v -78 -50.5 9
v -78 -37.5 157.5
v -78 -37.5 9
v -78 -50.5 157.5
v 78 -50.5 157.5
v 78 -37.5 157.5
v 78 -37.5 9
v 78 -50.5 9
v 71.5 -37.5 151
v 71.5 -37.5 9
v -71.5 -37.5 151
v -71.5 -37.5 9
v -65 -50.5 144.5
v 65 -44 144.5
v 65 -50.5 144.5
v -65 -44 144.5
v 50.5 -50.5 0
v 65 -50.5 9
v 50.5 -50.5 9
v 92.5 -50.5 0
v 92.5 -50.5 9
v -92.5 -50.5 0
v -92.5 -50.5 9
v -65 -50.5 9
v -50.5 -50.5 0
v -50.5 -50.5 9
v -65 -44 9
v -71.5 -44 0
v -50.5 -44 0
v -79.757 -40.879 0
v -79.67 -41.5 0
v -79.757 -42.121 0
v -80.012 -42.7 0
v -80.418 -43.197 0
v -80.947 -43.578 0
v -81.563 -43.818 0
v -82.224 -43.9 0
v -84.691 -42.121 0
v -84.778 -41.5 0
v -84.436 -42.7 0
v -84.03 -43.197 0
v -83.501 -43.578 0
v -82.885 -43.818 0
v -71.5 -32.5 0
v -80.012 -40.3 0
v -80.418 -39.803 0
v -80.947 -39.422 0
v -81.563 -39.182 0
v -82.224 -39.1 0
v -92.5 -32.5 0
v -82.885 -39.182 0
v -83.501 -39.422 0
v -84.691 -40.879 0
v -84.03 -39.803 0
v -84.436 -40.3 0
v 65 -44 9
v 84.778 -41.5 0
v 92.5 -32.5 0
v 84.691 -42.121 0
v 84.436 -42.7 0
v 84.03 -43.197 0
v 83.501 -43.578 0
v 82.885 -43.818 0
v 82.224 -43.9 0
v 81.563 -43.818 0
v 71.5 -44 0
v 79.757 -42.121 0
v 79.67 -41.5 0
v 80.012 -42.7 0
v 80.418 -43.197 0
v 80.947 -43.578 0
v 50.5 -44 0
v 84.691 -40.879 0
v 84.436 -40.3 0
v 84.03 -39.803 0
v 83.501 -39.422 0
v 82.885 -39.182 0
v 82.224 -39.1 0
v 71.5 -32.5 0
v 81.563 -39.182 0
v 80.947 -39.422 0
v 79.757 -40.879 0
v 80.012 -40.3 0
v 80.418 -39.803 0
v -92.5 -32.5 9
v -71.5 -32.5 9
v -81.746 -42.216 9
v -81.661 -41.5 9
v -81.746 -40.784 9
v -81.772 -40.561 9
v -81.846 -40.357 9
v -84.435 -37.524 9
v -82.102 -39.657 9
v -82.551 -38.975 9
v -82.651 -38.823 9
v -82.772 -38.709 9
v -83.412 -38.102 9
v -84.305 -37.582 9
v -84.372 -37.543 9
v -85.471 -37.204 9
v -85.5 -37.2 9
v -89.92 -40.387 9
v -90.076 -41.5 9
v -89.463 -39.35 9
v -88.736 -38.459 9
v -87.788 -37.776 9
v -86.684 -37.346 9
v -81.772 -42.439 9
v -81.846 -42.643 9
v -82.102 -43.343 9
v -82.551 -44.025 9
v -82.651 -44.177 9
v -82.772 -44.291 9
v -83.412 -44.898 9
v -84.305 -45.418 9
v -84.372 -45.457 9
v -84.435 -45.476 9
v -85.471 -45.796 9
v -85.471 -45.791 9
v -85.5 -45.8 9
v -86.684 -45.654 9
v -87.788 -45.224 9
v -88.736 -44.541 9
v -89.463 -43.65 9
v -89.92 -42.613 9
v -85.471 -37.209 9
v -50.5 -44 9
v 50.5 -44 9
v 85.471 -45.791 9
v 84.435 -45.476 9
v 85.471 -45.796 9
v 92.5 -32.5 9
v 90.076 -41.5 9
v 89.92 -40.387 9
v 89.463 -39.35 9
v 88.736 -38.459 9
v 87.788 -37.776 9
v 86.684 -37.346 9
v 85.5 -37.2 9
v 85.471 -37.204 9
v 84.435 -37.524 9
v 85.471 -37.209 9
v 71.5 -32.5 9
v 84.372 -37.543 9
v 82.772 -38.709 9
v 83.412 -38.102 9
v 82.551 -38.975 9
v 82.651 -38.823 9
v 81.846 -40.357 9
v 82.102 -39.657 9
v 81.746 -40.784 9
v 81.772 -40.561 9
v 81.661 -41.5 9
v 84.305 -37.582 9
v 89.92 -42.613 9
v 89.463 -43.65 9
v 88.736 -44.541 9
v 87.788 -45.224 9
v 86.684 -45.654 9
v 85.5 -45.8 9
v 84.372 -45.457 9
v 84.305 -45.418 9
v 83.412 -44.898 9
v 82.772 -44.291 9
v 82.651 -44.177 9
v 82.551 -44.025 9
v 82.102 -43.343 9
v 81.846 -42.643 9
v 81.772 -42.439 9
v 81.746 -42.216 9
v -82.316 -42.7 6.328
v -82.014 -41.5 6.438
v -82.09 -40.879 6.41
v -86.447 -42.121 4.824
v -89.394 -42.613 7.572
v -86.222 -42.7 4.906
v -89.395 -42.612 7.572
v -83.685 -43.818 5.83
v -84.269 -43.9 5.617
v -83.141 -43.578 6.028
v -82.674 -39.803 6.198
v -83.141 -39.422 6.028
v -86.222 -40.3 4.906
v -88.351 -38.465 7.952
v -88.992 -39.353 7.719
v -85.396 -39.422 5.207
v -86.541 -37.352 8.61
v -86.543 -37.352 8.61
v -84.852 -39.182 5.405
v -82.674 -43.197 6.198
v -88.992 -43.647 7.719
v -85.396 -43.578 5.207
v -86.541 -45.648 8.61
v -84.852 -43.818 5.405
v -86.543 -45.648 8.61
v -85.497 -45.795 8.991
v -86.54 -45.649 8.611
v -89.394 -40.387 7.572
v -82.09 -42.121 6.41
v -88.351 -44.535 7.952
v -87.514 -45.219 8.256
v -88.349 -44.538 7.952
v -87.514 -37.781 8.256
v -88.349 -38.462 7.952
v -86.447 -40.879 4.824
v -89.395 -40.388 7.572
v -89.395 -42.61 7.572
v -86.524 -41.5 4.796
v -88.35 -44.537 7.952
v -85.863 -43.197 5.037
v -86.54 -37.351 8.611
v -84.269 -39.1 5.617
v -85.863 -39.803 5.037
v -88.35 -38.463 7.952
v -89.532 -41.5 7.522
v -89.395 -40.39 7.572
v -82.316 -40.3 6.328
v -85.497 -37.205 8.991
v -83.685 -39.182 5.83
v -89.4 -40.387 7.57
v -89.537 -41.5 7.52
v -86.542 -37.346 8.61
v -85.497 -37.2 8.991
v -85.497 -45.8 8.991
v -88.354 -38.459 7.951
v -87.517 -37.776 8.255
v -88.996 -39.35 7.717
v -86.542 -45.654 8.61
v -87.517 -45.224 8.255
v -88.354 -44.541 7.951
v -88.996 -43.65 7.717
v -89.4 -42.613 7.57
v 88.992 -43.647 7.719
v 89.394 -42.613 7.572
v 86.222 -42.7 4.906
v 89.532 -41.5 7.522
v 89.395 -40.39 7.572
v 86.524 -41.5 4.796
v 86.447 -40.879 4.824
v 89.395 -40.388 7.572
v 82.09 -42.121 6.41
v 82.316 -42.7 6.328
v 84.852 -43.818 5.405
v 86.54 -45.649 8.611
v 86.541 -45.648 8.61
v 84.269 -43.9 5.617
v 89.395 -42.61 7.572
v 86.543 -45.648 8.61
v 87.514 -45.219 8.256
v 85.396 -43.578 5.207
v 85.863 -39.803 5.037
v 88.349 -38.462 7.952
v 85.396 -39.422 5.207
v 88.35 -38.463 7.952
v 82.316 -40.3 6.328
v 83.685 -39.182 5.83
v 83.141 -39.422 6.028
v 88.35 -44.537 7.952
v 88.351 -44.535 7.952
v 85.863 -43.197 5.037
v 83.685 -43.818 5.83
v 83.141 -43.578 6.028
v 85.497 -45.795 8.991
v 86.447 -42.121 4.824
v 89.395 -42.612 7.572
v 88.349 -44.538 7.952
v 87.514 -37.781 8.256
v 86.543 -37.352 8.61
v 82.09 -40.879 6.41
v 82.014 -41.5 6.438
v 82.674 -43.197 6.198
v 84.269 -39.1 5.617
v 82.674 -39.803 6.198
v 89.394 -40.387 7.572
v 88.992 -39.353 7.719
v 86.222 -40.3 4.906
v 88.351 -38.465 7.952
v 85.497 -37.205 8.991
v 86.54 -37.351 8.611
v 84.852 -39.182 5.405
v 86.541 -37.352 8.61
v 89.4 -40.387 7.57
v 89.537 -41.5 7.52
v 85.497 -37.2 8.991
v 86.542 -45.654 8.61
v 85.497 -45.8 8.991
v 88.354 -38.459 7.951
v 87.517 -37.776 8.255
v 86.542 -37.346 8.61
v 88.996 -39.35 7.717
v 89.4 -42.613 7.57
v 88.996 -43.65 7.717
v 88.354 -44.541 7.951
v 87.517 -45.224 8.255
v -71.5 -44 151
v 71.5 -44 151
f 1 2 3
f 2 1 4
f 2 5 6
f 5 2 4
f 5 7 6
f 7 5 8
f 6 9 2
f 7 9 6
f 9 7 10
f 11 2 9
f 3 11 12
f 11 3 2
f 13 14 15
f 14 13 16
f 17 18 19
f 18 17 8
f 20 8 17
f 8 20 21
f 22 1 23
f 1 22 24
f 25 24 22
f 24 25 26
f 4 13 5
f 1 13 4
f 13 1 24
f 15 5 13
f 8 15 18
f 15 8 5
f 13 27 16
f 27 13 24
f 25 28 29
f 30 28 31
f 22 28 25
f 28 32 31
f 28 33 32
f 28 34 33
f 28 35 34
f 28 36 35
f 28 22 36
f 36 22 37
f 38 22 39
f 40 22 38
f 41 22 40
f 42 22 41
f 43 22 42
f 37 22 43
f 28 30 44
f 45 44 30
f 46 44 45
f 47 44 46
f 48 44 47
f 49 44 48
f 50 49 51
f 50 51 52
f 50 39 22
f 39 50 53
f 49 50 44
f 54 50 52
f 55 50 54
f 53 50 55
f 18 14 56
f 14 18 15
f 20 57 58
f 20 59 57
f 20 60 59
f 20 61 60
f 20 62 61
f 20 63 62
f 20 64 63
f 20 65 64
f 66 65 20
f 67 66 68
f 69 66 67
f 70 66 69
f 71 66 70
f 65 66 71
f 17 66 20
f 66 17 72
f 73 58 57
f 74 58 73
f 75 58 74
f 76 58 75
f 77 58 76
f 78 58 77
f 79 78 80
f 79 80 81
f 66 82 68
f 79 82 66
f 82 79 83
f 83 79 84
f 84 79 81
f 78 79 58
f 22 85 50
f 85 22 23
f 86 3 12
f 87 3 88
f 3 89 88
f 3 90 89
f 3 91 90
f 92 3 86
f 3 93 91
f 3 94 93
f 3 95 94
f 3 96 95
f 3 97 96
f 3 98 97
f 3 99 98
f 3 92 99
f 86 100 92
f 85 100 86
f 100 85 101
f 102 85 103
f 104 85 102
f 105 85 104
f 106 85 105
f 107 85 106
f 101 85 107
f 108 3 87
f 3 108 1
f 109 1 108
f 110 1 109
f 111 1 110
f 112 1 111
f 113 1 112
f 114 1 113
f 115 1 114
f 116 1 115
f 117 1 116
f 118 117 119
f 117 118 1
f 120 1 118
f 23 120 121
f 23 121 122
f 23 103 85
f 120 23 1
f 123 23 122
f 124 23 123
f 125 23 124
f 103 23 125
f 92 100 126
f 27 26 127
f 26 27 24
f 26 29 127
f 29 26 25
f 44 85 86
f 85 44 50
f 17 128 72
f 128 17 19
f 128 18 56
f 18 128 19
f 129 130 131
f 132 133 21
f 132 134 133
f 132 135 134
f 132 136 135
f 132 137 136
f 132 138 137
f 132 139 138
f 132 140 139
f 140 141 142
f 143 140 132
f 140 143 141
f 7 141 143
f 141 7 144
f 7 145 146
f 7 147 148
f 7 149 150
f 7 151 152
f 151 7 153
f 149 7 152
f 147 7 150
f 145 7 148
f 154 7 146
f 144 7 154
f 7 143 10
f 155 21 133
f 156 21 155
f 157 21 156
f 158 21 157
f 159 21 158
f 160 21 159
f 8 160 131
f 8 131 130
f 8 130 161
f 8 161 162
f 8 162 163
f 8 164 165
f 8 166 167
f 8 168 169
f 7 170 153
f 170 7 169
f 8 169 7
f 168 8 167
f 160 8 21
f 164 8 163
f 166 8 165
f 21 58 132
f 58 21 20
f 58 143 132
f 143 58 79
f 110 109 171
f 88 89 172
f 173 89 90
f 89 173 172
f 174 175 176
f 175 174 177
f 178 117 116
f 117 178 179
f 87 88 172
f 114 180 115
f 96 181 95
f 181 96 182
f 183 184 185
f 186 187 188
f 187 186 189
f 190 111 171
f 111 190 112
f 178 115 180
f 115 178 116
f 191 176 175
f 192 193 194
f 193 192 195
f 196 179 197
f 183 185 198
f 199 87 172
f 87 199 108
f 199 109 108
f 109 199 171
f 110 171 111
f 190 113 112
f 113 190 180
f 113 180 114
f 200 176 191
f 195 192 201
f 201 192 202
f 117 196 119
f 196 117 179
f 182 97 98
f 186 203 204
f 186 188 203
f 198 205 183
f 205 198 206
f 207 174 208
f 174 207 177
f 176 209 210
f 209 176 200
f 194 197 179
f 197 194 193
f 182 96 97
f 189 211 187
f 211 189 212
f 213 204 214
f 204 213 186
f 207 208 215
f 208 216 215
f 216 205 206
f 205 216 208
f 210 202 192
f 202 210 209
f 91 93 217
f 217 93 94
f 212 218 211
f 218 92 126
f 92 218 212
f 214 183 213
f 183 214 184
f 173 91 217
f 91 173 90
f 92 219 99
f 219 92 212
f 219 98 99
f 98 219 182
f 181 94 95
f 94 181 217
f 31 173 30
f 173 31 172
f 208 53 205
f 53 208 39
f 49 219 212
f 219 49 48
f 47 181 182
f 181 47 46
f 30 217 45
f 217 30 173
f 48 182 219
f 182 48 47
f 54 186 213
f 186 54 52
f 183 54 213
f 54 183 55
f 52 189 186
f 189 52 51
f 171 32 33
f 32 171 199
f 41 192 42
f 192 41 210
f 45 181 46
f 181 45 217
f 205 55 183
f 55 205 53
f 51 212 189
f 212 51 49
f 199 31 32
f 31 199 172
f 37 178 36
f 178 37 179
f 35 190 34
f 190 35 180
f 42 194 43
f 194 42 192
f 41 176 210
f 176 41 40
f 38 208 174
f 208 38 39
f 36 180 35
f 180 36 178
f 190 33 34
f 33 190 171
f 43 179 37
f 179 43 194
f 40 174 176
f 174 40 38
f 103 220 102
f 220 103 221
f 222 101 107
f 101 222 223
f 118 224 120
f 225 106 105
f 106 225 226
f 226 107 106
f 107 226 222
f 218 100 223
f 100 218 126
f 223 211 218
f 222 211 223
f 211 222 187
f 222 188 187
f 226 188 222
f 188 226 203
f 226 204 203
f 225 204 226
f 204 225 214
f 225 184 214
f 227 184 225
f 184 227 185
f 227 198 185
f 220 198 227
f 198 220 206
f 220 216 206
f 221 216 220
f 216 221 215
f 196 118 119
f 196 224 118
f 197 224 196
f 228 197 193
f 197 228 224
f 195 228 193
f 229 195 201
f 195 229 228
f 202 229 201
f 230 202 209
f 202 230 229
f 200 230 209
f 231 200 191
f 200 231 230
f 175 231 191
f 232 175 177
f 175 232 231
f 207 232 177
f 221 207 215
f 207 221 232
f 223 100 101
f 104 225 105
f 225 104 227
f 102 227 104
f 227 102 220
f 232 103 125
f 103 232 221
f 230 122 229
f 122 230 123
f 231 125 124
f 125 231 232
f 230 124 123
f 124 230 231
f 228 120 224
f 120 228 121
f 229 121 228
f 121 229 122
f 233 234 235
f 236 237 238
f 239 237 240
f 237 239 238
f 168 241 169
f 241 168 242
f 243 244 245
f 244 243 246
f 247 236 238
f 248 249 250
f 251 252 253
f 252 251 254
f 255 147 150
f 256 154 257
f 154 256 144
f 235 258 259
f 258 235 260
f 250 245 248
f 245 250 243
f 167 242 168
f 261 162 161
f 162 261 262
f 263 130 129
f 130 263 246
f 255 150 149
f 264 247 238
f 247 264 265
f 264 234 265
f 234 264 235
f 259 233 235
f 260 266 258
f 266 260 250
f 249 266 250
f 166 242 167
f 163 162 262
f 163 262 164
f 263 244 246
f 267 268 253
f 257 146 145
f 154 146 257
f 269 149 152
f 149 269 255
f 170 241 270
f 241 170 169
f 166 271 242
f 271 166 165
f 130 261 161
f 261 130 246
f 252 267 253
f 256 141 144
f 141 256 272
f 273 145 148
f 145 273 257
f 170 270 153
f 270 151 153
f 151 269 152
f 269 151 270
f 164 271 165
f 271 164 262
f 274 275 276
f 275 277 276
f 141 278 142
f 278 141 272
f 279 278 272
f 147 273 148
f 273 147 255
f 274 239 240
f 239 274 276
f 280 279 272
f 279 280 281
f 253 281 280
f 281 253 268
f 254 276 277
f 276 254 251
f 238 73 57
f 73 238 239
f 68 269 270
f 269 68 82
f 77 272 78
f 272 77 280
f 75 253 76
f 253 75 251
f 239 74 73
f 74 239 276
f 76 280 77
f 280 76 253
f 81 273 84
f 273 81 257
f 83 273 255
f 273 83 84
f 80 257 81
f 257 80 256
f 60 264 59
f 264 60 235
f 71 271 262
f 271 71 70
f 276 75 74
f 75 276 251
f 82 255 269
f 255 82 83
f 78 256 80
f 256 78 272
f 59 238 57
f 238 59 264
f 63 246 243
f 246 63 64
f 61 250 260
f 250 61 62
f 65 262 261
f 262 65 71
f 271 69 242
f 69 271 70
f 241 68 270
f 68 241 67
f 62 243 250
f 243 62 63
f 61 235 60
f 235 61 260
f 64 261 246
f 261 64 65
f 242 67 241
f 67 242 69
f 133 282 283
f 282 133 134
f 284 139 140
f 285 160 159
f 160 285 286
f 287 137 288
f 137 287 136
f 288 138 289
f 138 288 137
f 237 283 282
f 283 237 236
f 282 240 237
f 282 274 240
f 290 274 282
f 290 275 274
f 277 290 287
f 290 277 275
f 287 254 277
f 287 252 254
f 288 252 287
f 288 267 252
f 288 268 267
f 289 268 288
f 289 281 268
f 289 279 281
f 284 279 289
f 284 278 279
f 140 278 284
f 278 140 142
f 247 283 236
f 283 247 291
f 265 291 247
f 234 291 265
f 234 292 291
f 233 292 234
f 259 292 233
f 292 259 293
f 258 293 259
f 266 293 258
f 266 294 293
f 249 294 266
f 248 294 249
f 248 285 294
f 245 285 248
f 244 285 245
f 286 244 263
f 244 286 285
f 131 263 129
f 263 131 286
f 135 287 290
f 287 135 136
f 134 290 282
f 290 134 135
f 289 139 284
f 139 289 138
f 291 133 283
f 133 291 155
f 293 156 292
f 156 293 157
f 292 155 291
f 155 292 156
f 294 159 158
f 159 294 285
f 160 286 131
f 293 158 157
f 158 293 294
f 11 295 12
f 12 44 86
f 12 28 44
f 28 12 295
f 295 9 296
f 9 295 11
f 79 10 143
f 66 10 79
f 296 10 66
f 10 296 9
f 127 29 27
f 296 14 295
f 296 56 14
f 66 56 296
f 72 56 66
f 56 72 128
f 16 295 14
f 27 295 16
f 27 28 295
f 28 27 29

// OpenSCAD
atx_h=150;
atx_d=86;
atx_w=141;

felt_w=19.5;
felt_t=1;

foot_t=9;
wall=6;

ep=0.01;

num8slot=4.8;

module num8counter()
//countersink shape
{
    hh=3.6;
    rr=8.6/2;
    translate([0,0,-hh])
    {
        cylinder(r1=num8slot/2,r2=rr,h=hh,$fn=24);
        translate([0,0,-foot_t])cylinder(r1=num8slot/2,r2=num8slot/2,h=hh+foot_t,$fn=24);
        translate([0,0,hh-ep])cylinder(r=rr,h=foot_t,$fn=24);
    }
}

module atx_supply()
{
    color([.6,.6,.6])translate([0,0,atx_h/2])cube([atx_w,atx_d,atx_h],center=true);
}

module bracket()
{
    //top portion
    ww=atx_w+wall*2+felt_t*2+felt_t;
    hh=atx_h+wall+felt_t;
    zz=atx_h+felt_t;
    yy=atx_d/2+felt_t;
    xx=atx_w/2+felt_t;
    translate([0,-(yy),zz])cube([ww,wall*2+felt_t,wall*2+felt_t],center=true);
    translate([-xx,-yy,hh/2])cube([wall*2+felt_t,wall*2+felt_t,hh],center=true);
    translate([xx,-yy,hh/2])cube([wall*2+felt_t,wall*2+felt_t,hh],center=true);
    //foot
    translate([-(xx),9-(yy+(wall+felt_t/2)),foot_t/2])cube([42,18,foot_t],center=true);
    translate([(xx),9-(yy+(wall+felt_t/2)),foot_t/2])cube([42,18,foot_t],center=true);
}
module complete()
{
    difference()
    {
        bracket();
        translate([0,0,atx_h/2])cube([atx_w+felt_t*2,atx_d+felt_t*2,atx_h+felt_t*2],center=true);
        translate([-(atx_w/2+wall*2+3),9-(atx_d/2+felt_t+(wall+felt_t/2)),foot_t])rotate([0,-20,0])num8counter();
        translate([(atx_w/2+wall*2+3),9-(atx_d/2+felt_t+(wall+felt_t/2)),foot_t])rotate([0,20,0])num8counter();
    }
}

complete();

//atx_supply();
    
